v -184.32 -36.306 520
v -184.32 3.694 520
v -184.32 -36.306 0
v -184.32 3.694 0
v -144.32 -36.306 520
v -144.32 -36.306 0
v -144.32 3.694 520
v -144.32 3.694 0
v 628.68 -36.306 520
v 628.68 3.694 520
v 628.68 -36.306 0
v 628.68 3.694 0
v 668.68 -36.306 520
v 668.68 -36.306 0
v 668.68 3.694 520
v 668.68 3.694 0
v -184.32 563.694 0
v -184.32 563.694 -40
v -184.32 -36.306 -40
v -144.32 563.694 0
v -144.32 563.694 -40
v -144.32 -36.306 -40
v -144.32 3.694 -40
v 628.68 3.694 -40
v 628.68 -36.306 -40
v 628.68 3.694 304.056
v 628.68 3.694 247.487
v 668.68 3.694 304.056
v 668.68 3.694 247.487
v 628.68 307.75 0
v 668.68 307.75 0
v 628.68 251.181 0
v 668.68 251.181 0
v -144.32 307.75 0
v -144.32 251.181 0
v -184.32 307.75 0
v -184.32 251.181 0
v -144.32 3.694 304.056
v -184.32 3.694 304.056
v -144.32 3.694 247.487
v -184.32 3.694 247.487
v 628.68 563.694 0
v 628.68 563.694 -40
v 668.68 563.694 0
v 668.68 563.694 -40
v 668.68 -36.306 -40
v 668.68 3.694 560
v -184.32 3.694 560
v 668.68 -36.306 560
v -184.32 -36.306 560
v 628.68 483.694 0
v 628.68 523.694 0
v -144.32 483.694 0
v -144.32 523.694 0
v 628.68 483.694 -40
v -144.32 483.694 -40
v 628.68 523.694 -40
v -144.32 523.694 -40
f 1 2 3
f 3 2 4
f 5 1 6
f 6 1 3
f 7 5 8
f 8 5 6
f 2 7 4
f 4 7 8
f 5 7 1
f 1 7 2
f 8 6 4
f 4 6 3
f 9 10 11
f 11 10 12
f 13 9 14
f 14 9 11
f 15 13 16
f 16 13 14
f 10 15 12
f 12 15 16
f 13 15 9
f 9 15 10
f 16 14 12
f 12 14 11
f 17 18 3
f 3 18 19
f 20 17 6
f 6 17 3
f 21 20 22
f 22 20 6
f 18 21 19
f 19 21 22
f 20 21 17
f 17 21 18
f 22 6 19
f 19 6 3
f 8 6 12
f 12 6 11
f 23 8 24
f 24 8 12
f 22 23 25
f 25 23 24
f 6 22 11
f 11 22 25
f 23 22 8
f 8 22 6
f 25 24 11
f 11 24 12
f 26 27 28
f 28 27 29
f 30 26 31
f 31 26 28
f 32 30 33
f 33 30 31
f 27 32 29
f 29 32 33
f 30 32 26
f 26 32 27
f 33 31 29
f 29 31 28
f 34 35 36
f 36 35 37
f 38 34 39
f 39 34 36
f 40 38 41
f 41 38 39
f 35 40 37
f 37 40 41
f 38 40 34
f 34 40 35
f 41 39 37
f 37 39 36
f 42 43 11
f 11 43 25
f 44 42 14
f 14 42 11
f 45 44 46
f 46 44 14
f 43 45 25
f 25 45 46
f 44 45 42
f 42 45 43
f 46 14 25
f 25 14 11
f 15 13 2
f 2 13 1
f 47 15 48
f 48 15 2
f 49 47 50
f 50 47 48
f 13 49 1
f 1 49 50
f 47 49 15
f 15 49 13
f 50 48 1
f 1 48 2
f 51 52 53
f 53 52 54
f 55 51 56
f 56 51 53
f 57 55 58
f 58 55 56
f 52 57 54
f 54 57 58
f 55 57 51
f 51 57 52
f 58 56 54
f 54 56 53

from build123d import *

# Parameters (mm, degrees)
SKETCH_2_W        = 40
SKETCH_2_H        = 40
EXTRUDE_1_DEPTH   = 520
EXTRUDE_1_2_DEPTH = 520
SKETCH_8_W        = 40
SKETCH_8_H        = 40
EXTRUDE_4_DEPTH   = 600
EXTRUDE_4_2_DEPTH = 600
SKETCH_9_W        = 40
SKETCH_9_H        = 40
EXTRUDE_6_DEPTH   = 773
EXTRUDE_7_DEPTH   = 40
EXTRUDE_8_DEPTH   = 40
SKETCH_16_W       = 40
SKETCH_16_H       = 40
EXTRUDE_9_DEPTH   = 853
SKETCH_17_W       = 40
SKETCH_17_H       = 40
EXTRUDE_10_DEPTH  = 773


with BuildPart() as part:
    # ｽｹｯﾁ2 → ﾎﾞｽ - 押し出し1 (new body)
    with BuildSketch(Plane.XY):
        with Locations((-164.32000567, -16.306275718)):
            Rectangle(SKETCH_2_W, SKETCH_2_H)
    extrude(amount=EXTRUDE_1_DEPTH)


with BuildPart() as body_2:
    # ｽｹｯﾁ2 → Extrude 1 2 (new body)
    with BuildSketch(Plane.XY):
        with Locations((648.67999433, -16.306275718)):
            Rectangle(SKETCH_2_W, SKETCH_2_H)
    extrude(amount=EXTRUDE_1_2_DEPTH)


with BuildPart() as body_3:
    # ｽｹｯﾁ8 → ﾎﾞｽ - 押し出し4 (new body)
    with BuildSketch(Plane.XZ.offset(36.306275718)):
        with Locations((-164.32000567, -20)):
            Rectangle(SKETCH_8_W, SKETCH_8_H)
    extrude(amount=-EXTRUDE_4_DEPTH)


with BuildPart() as body_4:
    # ｽｹｯﾁ8 → Extrude 4 2 (new body)
    with BuildSketch(Plane.XZ.offset(36.306275718)):
        with Locations((648.67999433, -20)):
            Rectangle(SKETCH_8_W, SKETCH_8_H)
    extrude(amount=-EXTRUDE_4_2_DEPTH)


with BuildPart() as body_5:
    # ｽｹｯﾁ9 → ﾎﾞｽ - 押し出し6 (new body)
    with BuildSketch(Plane.ZY.offset(-628.67999433)):
        with Locations((-20, -16.306275718)):
            Rectangle(SKETCH_9_W, SKETCH_9_H)
    extrude(amount=EXTRUDE_6_DEPTH)


with BuildPart() as body_6:
    # ｽｹｯﾁ13 → ﾎﾞｽ - 押し出し7 (new body)
    with BuildSketch(Plane(origin=(668.67999433, 0, 0), x_dir=(0, 0, -1), z_dir=(1, 0, 0))):
        Polygon((-304.05591591, 3.693724282), (0, 307.749640192), (0, 251.181097697), (-247.487373415, 3.693724282), align=None)
    extrude(amount=-EXTRUDE_7_DEPTH)


with BuildPart() as body_7:
    # ｽｹｯﾁ14 → ﾎﾞｽ - 押し出し8 (new body)
    with BuildSketch(Plane.ZY.offset(184.32000567)):
        Polygon((0, 307.749640192), (304.05591591, 3.693724282), (247.487373415, 3.693724282), (0, 251.181097697), align=None)
    extrude(amount=-EXTRUDE_8_DEPTH)


with BuildPart() as body_8:
    # ｽｹｯﾁ16 → ﾎﾞｽ - 押し出し9 (new body)
    with BuildSketch(Plane.ZY.offset(184.32000567)):
        with Locations((540, -16.306275718)):
            Rectangle(SKETCH_16_W, SKETCH_16_H)
    extrude(amount=-EXTRUDE_9_DEPTH)


with BuildPart() as body_9:
    # ｽｹｯﾁ17 → ﾎﾞｽ - 押し出し10 (new body)
    with BuildSketch(Plane(origin=(-144.32000567, 0, 0), x_dir=(0, 0, -1), z_dir=(1, 0, 0))):
        with Locations((20, 503.693724282)):
            Rectangle(SKETCH_17_W, SKETCH_17_H)
    extrude(amount=EXTRUDE_10_DEPTH)


solid = Compound([part.part, body_2.part, body_3.part, body_4.part, body_5.part, body_6.part, body_7.part, body_8.part, body_9.part])
